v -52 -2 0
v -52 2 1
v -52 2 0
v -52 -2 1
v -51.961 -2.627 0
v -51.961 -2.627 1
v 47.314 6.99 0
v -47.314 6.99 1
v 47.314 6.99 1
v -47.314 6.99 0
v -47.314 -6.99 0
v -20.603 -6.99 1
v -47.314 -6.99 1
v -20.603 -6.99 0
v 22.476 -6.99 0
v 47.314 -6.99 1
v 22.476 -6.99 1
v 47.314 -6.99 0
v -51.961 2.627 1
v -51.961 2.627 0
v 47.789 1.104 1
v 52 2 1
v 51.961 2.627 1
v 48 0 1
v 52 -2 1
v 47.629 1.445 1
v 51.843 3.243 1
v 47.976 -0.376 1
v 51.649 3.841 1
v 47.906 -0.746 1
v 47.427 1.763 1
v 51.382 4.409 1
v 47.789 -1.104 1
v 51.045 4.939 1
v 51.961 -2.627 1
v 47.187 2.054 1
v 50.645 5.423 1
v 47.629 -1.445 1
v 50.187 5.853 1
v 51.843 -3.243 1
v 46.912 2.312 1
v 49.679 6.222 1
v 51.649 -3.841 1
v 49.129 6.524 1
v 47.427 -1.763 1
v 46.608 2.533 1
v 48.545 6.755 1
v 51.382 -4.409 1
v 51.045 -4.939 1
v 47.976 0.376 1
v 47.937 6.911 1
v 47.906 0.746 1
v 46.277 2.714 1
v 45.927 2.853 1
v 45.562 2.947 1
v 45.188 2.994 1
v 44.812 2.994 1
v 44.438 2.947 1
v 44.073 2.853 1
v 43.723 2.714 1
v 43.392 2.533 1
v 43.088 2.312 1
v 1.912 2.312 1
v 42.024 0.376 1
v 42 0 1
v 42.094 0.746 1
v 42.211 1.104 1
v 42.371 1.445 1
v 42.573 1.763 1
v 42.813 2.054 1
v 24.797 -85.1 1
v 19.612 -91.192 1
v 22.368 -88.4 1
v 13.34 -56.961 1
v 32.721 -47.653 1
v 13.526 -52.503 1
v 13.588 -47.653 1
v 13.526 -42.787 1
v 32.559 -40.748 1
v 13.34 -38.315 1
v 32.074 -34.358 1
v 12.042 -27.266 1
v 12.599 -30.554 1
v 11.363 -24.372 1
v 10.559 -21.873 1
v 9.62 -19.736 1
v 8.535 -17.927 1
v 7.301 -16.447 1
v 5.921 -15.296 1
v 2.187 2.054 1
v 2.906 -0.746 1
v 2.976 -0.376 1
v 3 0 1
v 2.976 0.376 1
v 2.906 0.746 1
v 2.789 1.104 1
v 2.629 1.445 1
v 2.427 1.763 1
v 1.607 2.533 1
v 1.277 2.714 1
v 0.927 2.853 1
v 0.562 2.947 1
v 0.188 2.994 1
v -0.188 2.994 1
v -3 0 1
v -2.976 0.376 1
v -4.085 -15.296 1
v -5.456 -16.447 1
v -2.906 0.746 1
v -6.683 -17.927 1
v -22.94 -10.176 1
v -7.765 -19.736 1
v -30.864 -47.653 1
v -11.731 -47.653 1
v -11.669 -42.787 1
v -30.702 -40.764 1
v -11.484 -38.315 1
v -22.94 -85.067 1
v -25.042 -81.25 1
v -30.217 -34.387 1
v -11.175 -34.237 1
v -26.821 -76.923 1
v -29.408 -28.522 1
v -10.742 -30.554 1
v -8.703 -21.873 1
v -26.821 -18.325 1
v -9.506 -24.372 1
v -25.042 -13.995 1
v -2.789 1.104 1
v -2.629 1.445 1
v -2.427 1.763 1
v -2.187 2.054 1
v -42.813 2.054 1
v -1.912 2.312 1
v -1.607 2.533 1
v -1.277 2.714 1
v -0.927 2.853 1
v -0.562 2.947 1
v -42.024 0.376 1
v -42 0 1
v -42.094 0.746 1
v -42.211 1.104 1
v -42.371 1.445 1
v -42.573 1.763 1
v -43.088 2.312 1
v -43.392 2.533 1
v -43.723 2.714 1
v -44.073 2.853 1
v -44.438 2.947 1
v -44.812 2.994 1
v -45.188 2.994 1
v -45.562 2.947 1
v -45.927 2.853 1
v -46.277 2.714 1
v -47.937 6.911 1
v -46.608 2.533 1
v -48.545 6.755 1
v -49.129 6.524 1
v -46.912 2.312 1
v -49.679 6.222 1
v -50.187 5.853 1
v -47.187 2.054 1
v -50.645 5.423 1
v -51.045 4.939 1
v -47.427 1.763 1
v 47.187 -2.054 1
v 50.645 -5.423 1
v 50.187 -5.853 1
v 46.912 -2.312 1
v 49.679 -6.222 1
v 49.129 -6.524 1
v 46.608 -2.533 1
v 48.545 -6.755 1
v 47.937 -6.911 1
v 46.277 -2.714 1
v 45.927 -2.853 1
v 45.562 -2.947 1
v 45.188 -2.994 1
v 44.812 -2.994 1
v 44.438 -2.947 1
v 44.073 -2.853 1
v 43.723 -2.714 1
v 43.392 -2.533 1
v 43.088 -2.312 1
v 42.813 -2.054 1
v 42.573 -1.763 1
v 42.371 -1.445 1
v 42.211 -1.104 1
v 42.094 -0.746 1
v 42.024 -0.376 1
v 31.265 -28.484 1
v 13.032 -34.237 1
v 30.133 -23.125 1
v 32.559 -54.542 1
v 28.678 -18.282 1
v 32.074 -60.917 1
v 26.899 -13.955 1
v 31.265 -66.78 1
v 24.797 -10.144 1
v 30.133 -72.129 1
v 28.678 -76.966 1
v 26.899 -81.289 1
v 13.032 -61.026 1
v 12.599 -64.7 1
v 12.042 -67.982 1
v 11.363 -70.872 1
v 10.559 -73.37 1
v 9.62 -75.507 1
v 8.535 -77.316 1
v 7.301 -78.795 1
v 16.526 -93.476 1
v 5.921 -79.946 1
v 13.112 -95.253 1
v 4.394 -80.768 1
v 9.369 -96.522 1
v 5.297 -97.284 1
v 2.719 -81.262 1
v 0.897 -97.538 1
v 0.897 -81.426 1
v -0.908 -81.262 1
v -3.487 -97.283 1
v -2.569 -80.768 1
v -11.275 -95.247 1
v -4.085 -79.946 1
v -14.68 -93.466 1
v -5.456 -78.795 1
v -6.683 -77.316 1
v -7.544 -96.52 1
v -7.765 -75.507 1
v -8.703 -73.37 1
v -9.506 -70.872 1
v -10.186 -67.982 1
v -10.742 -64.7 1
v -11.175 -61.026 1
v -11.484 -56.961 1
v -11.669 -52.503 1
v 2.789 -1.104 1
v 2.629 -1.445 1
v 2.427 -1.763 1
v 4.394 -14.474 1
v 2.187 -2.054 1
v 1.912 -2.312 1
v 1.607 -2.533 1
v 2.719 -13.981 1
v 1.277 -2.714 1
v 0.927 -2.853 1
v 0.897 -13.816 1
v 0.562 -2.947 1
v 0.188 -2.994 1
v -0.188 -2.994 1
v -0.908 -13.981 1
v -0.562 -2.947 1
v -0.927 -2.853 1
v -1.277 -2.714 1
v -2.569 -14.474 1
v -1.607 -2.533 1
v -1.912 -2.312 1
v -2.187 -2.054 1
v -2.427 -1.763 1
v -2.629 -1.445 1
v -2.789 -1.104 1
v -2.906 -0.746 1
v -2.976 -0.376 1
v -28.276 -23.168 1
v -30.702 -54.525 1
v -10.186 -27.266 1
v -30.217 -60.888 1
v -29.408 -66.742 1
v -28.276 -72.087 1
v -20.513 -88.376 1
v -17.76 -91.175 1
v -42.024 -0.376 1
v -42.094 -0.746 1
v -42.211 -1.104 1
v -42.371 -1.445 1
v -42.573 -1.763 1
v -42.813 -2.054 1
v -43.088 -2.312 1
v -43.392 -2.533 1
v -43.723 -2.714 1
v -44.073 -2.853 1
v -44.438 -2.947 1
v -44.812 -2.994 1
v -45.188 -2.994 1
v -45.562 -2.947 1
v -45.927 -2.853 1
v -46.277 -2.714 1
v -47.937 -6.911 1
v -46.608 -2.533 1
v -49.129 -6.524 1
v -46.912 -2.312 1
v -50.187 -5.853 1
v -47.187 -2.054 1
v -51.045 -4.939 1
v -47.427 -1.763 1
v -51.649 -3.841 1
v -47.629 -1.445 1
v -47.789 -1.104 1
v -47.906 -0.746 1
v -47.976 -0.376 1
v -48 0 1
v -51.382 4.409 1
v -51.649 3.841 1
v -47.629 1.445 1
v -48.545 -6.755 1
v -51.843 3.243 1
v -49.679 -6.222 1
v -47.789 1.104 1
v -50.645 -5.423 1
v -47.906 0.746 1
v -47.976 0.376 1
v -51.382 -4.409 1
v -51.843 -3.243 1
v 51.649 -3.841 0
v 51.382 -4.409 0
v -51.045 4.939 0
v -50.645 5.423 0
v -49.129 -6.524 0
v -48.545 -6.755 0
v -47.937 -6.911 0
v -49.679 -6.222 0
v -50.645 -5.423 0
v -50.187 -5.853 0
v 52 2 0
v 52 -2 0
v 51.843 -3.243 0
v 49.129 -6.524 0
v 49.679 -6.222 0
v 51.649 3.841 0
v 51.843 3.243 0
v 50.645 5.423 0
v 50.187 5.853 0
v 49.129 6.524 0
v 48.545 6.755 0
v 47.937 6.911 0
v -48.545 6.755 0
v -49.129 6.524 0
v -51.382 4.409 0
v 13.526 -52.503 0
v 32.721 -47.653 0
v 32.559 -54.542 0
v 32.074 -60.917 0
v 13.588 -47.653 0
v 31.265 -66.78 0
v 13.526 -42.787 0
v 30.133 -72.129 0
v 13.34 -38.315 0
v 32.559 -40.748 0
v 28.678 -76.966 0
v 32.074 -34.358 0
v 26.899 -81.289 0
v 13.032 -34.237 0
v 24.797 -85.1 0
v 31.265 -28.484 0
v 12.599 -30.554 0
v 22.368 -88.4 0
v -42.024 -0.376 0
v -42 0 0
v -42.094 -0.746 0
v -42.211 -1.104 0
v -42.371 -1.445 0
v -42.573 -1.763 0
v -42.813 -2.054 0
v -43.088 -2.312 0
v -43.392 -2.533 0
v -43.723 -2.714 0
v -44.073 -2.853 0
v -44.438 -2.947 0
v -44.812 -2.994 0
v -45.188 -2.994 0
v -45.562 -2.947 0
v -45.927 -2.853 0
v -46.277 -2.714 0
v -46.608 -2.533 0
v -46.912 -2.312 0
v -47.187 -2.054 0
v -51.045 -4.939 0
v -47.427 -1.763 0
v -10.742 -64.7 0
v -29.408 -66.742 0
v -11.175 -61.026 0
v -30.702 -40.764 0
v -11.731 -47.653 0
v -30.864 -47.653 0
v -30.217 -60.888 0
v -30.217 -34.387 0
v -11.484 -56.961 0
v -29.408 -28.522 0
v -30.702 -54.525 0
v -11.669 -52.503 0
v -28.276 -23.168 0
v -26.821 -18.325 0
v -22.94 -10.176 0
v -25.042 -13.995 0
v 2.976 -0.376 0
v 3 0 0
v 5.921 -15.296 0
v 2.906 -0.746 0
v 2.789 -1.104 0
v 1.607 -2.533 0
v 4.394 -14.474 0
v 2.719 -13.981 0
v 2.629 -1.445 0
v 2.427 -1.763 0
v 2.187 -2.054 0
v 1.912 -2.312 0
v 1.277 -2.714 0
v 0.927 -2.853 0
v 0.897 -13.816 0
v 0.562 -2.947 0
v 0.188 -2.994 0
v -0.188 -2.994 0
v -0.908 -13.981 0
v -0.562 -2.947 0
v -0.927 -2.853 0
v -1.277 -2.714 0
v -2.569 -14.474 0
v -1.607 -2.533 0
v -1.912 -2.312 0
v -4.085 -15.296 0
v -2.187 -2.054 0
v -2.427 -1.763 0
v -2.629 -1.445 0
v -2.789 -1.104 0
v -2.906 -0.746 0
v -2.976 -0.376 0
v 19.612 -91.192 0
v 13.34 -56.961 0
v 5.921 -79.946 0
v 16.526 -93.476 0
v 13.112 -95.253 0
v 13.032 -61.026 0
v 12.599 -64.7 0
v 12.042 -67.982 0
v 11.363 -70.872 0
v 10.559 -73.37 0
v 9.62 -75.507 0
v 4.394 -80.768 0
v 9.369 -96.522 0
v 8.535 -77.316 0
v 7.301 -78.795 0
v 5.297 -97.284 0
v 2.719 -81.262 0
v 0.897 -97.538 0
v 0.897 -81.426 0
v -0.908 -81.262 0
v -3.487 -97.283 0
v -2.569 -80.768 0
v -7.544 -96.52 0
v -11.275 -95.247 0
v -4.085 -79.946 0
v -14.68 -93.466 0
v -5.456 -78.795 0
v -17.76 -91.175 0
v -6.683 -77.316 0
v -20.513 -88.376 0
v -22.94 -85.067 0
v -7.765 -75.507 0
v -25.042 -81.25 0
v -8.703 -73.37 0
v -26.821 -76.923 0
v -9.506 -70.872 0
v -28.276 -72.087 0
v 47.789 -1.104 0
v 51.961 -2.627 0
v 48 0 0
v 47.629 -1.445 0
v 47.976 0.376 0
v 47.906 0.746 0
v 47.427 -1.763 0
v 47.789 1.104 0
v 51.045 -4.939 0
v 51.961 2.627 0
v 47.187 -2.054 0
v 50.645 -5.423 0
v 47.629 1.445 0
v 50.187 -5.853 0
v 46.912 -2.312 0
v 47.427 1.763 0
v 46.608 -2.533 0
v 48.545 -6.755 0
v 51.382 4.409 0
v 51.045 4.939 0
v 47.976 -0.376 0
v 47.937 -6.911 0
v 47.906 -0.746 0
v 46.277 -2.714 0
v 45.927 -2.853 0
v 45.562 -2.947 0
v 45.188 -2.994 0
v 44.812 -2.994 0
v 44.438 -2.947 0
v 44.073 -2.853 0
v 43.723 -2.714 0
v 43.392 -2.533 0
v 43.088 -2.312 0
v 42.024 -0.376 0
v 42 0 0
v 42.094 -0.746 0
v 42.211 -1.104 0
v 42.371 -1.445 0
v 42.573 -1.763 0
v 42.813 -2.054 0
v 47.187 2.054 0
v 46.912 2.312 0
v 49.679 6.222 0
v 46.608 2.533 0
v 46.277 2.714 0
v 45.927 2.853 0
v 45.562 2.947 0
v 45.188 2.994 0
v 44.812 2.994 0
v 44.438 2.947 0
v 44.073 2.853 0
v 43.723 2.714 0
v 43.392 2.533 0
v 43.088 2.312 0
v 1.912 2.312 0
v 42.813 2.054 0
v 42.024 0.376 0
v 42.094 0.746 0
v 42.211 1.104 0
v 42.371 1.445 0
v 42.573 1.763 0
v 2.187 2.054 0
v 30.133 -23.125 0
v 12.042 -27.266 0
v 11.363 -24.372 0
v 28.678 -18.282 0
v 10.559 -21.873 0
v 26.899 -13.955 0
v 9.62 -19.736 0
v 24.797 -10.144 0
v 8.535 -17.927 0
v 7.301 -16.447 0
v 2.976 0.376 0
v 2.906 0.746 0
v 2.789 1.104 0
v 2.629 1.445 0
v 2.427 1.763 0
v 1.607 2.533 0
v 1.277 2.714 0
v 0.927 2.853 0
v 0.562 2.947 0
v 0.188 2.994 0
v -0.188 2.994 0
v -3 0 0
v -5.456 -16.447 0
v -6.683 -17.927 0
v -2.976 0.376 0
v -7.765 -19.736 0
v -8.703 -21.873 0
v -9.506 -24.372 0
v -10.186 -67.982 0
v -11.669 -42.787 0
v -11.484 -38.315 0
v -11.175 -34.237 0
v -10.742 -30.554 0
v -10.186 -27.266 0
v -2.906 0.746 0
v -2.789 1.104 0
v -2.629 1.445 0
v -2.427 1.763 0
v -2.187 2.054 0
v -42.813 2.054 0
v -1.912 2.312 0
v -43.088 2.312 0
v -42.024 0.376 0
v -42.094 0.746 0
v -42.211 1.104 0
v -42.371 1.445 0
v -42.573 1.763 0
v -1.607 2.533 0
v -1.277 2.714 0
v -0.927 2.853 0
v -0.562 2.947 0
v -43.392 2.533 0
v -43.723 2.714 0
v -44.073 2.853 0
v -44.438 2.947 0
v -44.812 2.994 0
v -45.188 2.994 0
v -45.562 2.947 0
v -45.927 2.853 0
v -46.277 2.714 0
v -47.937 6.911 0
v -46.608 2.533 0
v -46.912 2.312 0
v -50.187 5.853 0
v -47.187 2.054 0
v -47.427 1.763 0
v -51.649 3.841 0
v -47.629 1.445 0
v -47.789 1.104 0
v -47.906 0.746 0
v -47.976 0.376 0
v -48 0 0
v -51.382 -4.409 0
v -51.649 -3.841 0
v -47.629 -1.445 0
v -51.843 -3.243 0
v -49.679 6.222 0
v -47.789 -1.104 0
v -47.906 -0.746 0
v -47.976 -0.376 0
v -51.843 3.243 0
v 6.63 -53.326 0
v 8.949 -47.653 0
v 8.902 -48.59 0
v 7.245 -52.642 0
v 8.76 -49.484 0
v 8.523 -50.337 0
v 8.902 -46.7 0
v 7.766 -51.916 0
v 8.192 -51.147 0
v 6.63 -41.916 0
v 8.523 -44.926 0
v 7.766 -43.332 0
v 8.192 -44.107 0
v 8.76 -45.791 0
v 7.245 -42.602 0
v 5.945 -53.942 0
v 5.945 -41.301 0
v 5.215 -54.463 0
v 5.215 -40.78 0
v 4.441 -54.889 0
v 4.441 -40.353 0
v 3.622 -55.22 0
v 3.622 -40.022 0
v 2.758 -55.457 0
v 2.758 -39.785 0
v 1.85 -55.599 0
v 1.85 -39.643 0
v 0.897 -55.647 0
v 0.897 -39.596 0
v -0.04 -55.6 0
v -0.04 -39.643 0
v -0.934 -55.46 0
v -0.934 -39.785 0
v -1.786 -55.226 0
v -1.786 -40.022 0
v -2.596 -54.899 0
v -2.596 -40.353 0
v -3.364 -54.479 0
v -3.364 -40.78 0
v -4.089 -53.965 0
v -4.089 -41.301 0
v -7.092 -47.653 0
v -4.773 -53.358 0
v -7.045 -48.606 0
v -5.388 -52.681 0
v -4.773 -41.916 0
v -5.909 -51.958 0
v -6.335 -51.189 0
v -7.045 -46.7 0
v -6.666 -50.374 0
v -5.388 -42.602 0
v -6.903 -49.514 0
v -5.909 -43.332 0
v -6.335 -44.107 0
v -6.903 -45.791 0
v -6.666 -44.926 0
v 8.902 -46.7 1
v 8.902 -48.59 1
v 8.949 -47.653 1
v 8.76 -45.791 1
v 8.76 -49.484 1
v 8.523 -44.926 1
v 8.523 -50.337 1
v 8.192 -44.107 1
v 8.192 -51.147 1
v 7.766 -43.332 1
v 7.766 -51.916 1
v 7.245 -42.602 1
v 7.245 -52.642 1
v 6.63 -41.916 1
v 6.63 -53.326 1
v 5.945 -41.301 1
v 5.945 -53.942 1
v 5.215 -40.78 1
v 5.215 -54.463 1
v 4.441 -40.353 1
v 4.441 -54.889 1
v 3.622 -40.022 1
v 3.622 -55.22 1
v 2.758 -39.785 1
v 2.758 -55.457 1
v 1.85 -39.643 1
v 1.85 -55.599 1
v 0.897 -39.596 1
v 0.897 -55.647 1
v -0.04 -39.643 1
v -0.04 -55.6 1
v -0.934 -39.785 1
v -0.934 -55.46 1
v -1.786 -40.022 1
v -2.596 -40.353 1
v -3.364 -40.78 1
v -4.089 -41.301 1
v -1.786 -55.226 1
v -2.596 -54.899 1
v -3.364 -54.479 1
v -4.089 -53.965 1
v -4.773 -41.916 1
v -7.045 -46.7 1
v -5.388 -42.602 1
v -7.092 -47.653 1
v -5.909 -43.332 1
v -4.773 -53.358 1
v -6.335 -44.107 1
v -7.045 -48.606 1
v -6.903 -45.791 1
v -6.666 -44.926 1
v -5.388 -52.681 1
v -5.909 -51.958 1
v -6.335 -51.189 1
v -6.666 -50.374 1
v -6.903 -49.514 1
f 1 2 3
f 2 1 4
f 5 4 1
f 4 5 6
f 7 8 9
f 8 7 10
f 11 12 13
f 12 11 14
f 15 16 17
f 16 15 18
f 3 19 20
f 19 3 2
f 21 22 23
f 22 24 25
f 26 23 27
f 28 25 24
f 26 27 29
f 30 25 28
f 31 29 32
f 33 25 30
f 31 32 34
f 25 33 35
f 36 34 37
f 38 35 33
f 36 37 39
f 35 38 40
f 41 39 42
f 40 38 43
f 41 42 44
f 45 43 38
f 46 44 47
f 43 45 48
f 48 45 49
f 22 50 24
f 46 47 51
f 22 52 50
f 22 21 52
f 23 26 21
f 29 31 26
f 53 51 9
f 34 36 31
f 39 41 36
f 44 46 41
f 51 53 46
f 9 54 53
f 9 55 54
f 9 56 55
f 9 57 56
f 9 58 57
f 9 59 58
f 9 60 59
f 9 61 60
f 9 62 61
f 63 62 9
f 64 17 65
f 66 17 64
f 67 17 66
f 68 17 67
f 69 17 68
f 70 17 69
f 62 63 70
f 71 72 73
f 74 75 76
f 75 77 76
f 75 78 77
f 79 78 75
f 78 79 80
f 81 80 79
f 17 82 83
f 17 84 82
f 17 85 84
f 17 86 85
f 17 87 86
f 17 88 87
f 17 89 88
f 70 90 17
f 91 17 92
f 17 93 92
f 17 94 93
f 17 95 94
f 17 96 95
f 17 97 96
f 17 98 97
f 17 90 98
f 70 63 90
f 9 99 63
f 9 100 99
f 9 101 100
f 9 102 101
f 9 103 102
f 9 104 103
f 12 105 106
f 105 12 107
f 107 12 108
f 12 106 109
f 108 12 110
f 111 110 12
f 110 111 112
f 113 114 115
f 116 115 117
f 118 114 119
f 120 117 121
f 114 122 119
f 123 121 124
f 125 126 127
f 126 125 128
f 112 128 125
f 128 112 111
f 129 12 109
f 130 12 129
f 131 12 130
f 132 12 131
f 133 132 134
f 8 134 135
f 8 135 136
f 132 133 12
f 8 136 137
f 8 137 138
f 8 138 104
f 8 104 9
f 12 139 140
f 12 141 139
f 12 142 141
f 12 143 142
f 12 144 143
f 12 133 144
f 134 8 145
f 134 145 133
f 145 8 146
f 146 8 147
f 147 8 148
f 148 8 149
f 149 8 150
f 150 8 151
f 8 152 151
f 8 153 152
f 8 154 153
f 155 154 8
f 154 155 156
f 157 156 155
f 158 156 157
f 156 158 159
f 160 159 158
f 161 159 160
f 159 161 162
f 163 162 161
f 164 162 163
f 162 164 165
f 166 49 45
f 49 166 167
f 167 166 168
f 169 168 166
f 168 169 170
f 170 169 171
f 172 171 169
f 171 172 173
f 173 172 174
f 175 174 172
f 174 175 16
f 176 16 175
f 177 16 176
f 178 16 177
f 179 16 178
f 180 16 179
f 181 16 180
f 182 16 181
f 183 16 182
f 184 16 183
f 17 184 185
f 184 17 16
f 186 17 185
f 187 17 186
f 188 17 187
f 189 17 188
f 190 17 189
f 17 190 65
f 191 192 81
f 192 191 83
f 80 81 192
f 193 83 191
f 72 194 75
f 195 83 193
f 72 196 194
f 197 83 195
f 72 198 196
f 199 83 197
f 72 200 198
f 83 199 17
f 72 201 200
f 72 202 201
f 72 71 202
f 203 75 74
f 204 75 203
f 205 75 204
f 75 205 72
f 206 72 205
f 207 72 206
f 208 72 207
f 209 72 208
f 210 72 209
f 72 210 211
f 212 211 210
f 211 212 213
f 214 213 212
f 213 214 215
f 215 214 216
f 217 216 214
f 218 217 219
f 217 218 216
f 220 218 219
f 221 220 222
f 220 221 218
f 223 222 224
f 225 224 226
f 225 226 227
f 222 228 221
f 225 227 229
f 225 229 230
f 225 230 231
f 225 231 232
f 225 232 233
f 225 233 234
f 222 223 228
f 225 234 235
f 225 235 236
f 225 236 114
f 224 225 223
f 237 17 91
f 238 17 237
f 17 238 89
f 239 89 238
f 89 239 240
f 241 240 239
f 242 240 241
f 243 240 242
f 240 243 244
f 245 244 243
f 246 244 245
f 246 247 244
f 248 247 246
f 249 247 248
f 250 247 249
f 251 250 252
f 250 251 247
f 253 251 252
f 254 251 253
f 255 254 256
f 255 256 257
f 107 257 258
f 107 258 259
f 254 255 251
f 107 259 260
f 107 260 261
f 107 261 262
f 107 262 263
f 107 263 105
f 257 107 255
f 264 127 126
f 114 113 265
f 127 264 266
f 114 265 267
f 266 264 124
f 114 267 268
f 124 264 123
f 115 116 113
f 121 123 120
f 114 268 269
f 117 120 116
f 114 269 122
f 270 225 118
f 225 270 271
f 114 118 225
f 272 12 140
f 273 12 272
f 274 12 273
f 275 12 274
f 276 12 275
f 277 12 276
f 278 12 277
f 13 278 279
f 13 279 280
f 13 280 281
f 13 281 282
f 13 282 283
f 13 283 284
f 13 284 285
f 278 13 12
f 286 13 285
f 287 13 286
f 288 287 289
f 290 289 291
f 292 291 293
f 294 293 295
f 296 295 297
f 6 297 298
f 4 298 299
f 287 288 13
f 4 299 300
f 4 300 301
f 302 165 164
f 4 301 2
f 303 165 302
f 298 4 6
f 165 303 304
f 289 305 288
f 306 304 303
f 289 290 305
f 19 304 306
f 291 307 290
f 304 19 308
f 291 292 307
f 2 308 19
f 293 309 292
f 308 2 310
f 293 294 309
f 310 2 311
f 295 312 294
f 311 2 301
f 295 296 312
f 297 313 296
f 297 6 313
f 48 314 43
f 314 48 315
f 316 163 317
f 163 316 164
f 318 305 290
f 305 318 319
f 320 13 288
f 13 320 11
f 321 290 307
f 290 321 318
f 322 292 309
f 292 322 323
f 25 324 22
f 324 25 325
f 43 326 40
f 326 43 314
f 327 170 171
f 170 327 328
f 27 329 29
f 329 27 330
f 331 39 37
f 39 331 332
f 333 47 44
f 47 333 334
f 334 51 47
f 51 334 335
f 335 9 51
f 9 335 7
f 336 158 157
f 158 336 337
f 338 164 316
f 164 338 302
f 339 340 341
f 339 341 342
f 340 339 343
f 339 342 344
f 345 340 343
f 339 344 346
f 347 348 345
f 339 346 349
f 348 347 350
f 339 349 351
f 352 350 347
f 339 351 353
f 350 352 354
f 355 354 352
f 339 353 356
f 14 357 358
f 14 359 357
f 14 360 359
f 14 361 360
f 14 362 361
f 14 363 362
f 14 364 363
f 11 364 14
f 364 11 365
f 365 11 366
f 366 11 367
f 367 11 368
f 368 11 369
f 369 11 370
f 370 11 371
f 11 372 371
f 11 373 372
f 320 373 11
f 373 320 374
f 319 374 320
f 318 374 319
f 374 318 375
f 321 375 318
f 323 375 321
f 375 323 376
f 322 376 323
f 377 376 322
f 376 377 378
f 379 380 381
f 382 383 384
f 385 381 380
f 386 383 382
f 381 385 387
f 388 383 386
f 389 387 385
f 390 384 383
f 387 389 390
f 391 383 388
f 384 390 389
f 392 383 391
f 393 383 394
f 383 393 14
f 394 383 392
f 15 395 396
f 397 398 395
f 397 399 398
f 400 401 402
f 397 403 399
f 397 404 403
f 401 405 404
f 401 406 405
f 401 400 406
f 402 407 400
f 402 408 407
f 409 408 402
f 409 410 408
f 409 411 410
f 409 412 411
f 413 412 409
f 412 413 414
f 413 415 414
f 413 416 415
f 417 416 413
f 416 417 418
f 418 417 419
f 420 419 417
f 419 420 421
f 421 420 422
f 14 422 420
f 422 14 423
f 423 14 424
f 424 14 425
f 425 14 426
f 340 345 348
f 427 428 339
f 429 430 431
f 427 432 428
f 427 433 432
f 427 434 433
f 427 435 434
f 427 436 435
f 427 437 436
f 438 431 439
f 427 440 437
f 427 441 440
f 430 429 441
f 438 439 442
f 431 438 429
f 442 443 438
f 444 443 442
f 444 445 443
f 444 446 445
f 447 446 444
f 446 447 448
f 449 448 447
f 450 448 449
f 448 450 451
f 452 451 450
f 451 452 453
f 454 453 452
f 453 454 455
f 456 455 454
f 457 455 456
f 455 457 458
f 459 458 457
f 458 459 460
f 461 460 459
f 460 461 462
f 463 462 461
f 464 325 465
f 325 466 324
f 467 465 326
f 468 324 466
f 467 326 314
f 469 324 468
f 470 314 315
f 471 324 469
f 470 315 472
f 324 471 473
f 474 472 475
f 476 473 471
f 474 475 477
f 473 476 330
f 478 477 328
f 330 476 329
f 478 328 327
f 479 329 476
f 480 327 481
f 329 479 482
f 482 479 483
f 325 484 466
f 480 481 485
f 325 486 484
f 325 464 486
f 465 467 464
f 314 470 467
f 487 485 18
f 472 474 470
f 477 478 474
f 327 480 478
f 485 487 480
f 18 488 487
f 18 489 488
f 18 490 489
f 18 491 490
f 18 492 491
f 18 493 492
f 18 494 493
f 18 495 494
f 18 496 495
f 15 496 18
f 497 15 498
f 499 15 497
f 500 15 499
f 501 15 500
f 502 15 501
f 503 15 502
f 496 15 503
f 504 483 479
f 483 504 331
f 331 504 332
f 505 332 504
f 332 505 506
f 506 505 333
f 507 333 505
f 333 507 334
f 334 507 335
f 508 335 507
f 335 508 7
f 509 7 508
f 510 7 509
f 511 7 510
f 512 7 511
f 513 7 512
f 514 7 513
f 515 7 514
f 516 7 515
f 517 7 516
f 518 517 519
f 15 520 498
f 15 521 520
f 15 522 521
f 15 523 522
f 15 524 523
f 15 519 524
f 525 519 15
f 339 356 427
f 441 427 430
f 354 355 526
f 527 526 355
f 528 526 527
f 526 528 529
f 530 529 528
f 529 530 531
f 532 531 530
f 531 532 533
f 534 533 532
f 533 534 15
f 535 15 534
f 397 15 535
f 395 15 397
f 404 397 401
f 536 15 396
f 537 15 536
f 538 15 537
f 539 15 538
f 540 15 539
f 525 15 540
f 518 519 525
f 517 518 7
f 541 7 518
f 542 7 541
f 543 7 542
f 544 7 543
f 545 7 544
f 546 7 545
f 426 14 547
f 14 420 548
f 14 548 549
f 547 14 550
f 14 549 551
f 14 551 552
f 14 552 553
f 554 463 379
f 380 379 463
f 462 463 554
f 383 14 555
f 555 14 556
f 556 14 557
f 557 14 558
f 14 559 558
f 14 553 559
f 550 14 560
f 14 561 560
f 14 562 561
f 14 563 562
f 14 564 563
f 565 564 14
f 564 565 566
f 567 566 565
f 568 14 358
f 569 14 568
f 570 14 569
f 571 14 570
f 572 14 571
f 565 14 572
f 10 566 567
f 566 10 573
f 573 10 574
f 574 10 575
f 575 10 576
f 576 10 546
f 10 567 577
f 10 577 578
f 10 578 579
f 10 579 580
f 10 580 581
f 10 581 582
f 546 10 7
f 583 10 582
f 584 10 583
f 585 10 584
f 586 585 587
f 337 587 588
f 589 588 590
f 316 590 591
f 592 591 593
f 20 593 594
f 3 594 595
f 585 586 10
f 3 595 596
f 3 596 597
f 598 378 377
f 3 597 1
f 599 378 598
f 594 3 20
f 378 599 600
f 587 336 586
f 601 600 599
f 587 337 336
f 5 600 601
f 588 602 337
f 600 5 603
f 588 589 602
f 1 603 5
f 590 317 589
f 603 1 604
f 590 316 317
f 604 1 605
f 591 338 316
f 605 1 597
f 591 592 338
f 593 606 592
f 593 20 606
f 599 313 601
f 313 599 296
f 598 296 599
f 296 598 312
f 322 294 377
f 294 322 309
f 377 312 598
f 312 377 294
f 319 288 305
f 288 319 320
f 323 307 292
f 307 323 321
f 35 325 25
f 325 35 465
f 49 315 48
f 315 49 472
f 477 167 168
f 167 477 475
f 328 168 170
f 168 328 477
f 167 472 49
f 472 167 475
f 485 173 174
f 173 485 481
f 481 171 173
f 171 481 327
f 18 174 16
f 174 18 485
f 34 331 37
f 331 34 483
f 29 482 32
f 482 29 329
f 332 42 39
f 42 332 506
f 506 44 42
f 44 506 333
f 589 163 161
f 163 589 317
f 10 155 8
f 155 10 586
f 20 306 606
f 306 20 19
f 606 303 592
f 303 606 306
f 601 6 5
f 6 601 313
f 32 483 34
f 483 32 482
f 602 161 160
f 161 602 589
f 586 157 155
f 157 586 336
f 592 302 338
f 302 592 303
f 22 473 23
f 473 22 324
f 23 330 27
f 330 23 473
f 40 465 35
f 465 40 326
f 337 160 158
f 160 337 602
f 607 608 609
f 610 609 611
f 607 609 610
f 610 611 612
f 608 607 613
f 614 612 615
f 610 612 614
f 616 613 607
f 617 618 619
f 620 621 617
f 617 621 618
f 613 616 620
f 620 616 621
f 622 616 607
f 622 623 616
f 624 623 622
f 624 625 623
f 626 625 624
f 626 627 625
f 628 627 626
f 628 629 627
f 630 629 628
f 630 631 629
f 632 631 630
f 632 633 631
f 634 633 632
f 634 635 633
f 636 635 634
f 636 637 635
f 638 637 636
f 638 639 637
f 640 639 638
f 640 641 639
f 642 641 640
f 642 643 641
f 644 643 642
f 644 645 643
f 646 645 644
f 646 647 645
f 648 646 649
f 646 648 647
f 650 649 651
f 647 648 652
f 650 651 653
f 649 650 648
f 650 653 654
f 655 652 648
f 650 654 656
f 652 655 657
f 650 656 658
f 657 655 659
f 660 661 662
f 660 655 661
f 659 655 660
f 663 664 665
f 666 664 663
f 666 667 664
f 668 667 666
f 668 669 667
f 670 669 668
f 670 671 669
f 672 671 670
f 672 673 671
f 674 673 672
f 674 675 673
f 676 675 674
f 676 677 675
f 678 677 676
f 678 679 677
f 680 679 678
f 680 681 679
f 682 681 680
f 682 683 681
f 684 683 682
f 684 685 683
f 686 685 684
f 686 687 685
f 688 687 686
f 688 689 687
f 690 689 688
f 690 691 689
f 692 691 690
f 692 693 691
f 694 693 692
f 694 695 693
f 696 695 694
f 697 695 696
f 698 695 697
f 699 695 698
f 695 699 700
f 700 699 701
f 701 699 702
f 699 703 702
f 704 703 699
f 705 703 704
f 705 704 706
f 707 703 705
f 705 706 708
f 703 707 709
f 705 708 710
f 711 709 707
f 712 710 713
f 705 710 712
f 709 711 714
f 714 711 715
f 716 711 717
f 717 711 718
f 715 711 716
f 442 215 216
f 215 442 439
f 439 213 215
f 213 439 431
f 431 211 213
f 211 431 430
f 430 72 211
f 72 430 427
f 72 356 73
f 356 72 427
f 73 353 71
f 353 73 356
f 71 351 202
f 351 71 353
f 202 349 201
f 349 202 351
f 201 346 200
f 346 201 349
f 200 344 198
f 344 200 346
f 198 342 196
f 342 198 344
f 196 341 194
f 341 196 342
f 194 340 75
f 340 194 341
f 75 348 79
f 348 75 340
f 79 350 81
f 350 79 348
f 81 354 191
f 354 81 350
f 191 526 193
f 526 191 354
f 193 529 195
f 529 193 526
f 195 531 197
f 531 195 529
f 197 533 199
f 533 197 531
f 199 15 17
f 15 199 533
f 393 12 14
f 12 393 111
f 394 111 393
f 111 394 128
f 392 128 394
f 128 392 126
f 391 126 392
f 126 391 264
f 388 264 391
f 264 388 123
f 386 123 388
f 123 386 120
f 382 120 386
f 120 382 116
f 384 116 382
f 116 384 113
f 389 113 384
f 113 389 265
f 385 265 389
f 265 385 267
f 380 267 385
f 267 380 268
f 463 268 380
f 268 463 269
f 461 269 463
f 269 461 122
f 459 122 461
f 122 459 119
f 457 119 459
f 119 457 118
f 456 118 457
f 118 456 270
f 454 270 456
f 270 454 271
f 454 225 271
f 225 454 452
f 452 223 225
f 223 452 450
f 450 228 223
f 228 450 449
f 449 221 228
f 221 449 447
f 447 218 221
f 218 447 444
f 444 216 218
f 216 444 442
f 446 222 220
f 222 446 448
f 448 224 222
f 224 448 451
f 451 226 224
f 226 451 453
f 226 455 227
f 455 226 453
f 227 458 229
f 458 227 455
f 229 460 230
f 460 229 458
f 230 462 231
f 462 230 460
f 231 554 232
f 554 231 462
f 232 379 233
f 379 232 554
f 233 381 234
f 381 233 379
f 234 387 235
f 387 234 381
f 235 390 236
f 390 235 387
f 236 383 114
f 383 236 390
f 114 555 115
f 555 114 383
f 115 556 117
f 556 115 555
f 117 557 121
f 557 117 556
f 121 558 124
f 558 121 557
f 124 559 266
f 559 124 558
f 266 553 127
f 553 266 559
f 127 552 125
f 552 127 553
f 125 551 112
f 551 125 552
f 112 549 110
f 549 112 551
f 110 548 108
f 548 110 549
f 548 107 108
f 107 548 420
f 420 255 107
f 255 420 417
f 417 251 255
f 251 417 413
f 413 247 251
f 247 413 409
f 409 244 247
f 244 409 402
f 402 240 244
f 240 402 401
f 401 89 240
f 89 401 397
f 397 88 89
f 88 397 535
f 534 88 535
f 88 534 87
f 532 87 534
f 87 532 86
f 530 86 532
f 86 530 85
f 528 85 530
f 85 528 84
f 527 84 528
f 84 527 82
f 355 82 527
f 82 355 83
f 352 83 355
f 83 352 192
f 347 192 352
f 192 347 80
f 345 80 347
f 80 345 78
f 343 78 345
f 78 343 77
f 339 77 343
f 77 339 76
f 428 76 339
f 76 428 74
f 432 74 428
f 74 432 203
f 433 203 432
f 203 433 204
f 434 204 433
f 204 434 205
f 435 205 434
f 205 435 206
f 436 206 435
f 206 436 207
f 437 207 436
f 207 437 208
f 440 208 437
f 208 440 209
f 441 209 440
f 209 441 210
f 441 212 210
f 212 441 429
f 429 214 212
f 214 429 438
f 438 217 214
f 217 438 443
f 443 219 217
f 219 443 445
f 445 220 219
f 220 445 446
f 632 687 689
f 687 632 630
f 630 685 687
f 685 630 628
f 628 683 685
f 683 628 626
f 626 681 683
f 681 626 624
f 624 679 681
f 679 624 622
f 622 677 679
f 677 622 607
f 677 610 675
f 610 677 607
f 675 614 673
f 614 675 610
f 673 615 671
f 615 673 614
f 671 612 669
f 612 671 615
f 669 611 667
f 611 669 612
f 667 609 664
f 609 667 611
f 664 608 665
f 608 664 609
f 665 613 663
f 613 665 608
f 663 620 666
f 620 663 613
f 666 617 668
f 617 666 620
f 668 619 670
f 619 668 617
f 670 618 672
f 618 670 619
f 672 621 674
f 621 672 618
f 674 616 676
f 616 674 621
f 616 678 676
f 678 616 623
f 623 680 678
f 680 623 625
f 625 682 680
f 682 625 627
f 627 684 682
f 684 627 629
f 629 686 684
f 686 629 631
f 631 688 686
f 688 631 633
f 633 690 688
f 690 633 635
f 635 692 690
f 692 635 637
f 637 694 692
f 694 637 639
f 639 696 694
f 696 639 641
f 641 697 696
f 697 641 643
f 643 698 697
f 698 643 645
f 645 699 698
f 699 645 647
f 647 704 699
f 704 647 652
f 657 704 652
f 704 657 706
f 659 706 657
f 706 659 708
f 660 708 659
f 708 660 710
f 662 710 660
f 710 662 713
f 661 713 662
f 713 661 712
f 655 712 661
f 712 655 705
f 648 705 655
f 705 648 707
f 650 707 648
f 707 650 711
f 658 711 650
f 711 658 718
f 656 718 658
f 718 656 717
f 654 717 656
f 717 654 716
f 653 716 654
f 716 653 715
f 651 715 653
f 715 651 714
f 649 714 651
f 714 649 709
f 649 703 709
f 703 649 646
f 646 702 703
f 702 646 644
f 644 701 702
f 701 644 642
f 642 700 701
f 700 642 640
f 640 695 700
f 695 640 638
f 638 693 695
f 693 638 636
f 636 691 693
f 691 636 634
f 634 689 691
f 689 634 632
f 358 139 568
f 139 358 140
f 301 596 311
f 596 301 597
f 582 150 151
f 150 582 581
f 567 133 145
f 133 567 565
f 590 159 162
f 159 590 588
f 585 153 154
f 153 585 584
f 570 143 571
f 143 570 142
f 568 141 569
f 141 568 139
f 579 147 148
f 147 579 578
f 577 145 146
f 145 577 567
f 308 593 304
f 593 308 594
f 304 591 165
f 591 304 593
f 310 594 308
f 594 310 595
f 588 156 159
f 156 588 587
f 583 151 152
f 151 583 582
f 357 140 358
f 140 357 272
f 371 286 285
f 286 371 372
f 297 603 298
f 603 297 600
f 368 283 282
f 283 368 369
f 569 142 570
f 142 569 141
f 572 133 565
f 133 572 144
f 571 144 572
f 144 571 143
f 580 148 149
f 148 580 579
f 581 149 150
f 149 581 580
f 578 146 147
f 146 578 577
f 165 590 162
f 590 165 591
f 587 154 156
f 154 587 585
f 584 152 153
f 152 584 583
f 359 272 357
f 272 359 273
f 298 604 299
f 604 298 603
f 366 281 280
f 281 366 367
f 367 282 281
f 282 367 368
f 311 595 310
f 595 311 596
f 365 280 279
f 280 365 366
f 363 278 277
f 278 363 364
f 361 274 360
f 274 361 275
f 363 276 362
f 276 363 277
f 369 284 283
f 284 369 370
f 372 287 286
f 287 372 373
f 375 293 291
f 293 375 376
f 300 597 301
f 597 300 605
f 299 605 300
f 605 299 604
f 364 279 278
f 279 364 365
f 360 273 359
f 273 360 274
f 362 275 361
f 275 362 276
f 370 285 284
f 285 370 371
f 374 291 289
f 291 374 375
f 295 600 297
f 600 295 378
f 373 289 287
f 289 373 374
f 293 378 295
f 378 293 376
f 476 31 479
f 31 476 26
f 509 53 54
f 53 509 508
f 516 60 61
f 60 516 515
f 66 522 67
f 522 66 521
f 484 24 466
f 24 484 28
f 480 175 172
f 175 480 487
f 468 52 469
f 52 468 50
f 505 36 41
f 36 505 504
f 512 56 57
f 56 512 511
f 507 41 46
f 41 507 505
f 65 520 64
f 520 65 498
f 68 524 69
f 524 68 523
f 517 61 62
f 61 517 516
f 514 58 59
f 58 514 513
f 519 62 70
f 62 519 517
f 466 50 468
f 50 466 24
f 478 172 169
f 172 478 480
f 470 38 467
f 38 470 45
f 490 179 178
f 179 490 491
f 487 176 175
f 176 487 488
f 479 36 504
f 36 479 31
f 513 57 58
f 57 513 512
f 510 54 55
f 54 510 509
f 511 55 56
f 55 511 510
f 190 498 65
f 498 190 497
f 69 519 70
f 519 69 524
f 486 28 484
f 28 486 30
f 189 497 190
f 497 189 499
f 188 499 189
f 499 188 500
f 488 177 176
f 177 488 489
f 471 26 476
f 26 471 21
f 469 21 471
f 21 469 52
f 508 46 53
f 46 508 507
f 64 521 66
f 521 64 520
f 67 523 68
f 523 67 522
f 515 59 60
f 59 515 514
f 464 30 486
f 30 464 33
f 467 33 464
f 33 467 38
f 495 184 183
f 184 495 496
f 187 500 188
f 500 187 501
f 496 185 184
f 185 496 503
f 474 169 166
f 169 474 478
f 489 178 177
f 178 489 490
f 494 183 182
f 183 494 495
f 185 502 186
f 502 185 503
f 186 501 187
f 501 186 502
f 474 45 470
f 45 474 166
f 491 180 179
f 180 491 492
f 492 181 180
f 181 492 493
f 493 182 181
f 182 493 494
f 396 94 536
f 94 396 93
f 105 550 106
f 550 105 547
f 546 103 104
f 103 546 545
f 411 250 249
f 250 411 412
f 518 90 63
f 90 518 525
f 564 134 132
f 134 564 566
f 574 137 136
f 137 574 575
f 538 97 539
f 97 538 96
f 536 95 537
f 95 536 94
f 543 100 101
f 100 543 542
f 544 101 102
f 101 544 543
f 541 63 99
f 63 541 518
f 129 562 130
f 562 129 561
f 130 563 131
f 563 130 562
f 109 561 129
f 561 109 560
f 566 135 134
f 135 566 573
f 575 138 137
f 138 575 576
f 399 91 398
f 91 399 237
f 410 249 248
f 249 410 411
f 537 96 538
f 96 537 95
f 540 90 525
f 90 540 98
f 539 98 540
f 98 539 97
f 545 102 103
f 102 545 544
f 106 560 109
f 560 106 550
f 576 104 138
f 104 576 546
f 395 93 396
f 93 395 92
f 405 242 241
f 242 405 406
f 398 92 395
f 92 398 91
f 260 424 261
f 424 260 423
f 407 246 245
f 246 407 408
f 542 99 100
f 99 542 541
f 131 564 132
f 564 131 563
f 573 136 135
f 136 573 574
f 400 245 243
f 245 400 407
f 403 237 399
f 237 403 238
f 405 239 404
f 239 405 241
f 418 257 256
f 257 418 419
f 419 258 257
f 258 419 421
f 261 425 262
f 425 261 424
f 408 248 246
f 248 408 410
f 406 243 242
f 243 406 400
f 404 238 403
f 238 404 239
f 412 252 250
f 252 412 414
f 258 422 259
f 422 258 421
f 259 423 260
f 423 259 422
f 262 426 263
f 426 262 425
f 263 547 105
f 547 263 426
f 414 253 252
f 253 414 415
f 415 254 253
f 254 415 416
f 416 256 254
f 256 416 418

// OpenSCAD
$fn = 50;


difference() {
	union() {
		translate(v = [0, 0, 0]) {
			rotate(a = [0, 0, 0]) {
				hull() {
					translate(v = [-47.0000000000, 2.0000000000, 0]) {
						rotate(a = [0, 0, 0]) {
							translate(v = [0, 0, 0]) {
								rotate(a = [0, 0, 0]) {
									cylinder(h = 1, r = 5);
								}
							}
						}
					}
					translate(v = [47.0000000000, 2.0000000000, 0]) {
						rotate(a = [0, 0, 0]) {
							translate(v = [0, 0, 0]) {
								rotate(a = [0, 0, 0]) {
									cylinder(h = 1, r = 5);
								}
							}
						}
					}
					translate(v = [-47.0000000000, -2.0000000000, 0]) {
						rotate(a = [0, 0, 0]) {
							translate(v = [0, 0, 0]) {
								rotate(a = [0, 0, 0]) {
									cylinder(h = 1, r = 5);
								}
							}
						}
					}
					translate(v = [47.0000000000, -2.0000000000, 0]) {
						rotate(a = [0, 0, 0]) {
							translate(v = [0, 0, 0]) {
								rotate(a = [0, 0, 0]) {
									cylinder(h = 1, r = 5);
								}
							}
						}
					}
				}
			}
		}
		translate(v = [0, 0, 0]) {
			rotate(a = [0, 0, 0]) {
				linear_extrude(height = 1) {
					text(font = "DejaVu Sans Mono:style=Bold", halign = "center", size = 95, text = "0", valign = "top");
				}
			}
		}
	}
	union() {
		translate(v = [-45.0000000000, 0.0000000000, -125.0000000000]) {
			rotate(a = [0, 0, 0]) {
				cylinder(h = 250, r = 3.0000000000);
			}
		}
		translate(v = [45.0000000000, 0.0000000000, -125.0000000000]) {
			rotate(a = [0, 0, 0]) {
				cylinder(h = 250, r = 3.0000000000);
			}
		}
		translate(v = [45.0000000000, 0.0000000000, -125.0000000000]) {
			rotate(a = [0, 0, 0]) {
				cylinder(h = 250, r = 3.0000000000);
			}
		}
		translate(v = [0, 0, -125.0000000000]) {
			rotate(a = [0, 0, 0]) {
				cylinder(h = 250, r = 3.0000000000);
			}
		}
	}
}
